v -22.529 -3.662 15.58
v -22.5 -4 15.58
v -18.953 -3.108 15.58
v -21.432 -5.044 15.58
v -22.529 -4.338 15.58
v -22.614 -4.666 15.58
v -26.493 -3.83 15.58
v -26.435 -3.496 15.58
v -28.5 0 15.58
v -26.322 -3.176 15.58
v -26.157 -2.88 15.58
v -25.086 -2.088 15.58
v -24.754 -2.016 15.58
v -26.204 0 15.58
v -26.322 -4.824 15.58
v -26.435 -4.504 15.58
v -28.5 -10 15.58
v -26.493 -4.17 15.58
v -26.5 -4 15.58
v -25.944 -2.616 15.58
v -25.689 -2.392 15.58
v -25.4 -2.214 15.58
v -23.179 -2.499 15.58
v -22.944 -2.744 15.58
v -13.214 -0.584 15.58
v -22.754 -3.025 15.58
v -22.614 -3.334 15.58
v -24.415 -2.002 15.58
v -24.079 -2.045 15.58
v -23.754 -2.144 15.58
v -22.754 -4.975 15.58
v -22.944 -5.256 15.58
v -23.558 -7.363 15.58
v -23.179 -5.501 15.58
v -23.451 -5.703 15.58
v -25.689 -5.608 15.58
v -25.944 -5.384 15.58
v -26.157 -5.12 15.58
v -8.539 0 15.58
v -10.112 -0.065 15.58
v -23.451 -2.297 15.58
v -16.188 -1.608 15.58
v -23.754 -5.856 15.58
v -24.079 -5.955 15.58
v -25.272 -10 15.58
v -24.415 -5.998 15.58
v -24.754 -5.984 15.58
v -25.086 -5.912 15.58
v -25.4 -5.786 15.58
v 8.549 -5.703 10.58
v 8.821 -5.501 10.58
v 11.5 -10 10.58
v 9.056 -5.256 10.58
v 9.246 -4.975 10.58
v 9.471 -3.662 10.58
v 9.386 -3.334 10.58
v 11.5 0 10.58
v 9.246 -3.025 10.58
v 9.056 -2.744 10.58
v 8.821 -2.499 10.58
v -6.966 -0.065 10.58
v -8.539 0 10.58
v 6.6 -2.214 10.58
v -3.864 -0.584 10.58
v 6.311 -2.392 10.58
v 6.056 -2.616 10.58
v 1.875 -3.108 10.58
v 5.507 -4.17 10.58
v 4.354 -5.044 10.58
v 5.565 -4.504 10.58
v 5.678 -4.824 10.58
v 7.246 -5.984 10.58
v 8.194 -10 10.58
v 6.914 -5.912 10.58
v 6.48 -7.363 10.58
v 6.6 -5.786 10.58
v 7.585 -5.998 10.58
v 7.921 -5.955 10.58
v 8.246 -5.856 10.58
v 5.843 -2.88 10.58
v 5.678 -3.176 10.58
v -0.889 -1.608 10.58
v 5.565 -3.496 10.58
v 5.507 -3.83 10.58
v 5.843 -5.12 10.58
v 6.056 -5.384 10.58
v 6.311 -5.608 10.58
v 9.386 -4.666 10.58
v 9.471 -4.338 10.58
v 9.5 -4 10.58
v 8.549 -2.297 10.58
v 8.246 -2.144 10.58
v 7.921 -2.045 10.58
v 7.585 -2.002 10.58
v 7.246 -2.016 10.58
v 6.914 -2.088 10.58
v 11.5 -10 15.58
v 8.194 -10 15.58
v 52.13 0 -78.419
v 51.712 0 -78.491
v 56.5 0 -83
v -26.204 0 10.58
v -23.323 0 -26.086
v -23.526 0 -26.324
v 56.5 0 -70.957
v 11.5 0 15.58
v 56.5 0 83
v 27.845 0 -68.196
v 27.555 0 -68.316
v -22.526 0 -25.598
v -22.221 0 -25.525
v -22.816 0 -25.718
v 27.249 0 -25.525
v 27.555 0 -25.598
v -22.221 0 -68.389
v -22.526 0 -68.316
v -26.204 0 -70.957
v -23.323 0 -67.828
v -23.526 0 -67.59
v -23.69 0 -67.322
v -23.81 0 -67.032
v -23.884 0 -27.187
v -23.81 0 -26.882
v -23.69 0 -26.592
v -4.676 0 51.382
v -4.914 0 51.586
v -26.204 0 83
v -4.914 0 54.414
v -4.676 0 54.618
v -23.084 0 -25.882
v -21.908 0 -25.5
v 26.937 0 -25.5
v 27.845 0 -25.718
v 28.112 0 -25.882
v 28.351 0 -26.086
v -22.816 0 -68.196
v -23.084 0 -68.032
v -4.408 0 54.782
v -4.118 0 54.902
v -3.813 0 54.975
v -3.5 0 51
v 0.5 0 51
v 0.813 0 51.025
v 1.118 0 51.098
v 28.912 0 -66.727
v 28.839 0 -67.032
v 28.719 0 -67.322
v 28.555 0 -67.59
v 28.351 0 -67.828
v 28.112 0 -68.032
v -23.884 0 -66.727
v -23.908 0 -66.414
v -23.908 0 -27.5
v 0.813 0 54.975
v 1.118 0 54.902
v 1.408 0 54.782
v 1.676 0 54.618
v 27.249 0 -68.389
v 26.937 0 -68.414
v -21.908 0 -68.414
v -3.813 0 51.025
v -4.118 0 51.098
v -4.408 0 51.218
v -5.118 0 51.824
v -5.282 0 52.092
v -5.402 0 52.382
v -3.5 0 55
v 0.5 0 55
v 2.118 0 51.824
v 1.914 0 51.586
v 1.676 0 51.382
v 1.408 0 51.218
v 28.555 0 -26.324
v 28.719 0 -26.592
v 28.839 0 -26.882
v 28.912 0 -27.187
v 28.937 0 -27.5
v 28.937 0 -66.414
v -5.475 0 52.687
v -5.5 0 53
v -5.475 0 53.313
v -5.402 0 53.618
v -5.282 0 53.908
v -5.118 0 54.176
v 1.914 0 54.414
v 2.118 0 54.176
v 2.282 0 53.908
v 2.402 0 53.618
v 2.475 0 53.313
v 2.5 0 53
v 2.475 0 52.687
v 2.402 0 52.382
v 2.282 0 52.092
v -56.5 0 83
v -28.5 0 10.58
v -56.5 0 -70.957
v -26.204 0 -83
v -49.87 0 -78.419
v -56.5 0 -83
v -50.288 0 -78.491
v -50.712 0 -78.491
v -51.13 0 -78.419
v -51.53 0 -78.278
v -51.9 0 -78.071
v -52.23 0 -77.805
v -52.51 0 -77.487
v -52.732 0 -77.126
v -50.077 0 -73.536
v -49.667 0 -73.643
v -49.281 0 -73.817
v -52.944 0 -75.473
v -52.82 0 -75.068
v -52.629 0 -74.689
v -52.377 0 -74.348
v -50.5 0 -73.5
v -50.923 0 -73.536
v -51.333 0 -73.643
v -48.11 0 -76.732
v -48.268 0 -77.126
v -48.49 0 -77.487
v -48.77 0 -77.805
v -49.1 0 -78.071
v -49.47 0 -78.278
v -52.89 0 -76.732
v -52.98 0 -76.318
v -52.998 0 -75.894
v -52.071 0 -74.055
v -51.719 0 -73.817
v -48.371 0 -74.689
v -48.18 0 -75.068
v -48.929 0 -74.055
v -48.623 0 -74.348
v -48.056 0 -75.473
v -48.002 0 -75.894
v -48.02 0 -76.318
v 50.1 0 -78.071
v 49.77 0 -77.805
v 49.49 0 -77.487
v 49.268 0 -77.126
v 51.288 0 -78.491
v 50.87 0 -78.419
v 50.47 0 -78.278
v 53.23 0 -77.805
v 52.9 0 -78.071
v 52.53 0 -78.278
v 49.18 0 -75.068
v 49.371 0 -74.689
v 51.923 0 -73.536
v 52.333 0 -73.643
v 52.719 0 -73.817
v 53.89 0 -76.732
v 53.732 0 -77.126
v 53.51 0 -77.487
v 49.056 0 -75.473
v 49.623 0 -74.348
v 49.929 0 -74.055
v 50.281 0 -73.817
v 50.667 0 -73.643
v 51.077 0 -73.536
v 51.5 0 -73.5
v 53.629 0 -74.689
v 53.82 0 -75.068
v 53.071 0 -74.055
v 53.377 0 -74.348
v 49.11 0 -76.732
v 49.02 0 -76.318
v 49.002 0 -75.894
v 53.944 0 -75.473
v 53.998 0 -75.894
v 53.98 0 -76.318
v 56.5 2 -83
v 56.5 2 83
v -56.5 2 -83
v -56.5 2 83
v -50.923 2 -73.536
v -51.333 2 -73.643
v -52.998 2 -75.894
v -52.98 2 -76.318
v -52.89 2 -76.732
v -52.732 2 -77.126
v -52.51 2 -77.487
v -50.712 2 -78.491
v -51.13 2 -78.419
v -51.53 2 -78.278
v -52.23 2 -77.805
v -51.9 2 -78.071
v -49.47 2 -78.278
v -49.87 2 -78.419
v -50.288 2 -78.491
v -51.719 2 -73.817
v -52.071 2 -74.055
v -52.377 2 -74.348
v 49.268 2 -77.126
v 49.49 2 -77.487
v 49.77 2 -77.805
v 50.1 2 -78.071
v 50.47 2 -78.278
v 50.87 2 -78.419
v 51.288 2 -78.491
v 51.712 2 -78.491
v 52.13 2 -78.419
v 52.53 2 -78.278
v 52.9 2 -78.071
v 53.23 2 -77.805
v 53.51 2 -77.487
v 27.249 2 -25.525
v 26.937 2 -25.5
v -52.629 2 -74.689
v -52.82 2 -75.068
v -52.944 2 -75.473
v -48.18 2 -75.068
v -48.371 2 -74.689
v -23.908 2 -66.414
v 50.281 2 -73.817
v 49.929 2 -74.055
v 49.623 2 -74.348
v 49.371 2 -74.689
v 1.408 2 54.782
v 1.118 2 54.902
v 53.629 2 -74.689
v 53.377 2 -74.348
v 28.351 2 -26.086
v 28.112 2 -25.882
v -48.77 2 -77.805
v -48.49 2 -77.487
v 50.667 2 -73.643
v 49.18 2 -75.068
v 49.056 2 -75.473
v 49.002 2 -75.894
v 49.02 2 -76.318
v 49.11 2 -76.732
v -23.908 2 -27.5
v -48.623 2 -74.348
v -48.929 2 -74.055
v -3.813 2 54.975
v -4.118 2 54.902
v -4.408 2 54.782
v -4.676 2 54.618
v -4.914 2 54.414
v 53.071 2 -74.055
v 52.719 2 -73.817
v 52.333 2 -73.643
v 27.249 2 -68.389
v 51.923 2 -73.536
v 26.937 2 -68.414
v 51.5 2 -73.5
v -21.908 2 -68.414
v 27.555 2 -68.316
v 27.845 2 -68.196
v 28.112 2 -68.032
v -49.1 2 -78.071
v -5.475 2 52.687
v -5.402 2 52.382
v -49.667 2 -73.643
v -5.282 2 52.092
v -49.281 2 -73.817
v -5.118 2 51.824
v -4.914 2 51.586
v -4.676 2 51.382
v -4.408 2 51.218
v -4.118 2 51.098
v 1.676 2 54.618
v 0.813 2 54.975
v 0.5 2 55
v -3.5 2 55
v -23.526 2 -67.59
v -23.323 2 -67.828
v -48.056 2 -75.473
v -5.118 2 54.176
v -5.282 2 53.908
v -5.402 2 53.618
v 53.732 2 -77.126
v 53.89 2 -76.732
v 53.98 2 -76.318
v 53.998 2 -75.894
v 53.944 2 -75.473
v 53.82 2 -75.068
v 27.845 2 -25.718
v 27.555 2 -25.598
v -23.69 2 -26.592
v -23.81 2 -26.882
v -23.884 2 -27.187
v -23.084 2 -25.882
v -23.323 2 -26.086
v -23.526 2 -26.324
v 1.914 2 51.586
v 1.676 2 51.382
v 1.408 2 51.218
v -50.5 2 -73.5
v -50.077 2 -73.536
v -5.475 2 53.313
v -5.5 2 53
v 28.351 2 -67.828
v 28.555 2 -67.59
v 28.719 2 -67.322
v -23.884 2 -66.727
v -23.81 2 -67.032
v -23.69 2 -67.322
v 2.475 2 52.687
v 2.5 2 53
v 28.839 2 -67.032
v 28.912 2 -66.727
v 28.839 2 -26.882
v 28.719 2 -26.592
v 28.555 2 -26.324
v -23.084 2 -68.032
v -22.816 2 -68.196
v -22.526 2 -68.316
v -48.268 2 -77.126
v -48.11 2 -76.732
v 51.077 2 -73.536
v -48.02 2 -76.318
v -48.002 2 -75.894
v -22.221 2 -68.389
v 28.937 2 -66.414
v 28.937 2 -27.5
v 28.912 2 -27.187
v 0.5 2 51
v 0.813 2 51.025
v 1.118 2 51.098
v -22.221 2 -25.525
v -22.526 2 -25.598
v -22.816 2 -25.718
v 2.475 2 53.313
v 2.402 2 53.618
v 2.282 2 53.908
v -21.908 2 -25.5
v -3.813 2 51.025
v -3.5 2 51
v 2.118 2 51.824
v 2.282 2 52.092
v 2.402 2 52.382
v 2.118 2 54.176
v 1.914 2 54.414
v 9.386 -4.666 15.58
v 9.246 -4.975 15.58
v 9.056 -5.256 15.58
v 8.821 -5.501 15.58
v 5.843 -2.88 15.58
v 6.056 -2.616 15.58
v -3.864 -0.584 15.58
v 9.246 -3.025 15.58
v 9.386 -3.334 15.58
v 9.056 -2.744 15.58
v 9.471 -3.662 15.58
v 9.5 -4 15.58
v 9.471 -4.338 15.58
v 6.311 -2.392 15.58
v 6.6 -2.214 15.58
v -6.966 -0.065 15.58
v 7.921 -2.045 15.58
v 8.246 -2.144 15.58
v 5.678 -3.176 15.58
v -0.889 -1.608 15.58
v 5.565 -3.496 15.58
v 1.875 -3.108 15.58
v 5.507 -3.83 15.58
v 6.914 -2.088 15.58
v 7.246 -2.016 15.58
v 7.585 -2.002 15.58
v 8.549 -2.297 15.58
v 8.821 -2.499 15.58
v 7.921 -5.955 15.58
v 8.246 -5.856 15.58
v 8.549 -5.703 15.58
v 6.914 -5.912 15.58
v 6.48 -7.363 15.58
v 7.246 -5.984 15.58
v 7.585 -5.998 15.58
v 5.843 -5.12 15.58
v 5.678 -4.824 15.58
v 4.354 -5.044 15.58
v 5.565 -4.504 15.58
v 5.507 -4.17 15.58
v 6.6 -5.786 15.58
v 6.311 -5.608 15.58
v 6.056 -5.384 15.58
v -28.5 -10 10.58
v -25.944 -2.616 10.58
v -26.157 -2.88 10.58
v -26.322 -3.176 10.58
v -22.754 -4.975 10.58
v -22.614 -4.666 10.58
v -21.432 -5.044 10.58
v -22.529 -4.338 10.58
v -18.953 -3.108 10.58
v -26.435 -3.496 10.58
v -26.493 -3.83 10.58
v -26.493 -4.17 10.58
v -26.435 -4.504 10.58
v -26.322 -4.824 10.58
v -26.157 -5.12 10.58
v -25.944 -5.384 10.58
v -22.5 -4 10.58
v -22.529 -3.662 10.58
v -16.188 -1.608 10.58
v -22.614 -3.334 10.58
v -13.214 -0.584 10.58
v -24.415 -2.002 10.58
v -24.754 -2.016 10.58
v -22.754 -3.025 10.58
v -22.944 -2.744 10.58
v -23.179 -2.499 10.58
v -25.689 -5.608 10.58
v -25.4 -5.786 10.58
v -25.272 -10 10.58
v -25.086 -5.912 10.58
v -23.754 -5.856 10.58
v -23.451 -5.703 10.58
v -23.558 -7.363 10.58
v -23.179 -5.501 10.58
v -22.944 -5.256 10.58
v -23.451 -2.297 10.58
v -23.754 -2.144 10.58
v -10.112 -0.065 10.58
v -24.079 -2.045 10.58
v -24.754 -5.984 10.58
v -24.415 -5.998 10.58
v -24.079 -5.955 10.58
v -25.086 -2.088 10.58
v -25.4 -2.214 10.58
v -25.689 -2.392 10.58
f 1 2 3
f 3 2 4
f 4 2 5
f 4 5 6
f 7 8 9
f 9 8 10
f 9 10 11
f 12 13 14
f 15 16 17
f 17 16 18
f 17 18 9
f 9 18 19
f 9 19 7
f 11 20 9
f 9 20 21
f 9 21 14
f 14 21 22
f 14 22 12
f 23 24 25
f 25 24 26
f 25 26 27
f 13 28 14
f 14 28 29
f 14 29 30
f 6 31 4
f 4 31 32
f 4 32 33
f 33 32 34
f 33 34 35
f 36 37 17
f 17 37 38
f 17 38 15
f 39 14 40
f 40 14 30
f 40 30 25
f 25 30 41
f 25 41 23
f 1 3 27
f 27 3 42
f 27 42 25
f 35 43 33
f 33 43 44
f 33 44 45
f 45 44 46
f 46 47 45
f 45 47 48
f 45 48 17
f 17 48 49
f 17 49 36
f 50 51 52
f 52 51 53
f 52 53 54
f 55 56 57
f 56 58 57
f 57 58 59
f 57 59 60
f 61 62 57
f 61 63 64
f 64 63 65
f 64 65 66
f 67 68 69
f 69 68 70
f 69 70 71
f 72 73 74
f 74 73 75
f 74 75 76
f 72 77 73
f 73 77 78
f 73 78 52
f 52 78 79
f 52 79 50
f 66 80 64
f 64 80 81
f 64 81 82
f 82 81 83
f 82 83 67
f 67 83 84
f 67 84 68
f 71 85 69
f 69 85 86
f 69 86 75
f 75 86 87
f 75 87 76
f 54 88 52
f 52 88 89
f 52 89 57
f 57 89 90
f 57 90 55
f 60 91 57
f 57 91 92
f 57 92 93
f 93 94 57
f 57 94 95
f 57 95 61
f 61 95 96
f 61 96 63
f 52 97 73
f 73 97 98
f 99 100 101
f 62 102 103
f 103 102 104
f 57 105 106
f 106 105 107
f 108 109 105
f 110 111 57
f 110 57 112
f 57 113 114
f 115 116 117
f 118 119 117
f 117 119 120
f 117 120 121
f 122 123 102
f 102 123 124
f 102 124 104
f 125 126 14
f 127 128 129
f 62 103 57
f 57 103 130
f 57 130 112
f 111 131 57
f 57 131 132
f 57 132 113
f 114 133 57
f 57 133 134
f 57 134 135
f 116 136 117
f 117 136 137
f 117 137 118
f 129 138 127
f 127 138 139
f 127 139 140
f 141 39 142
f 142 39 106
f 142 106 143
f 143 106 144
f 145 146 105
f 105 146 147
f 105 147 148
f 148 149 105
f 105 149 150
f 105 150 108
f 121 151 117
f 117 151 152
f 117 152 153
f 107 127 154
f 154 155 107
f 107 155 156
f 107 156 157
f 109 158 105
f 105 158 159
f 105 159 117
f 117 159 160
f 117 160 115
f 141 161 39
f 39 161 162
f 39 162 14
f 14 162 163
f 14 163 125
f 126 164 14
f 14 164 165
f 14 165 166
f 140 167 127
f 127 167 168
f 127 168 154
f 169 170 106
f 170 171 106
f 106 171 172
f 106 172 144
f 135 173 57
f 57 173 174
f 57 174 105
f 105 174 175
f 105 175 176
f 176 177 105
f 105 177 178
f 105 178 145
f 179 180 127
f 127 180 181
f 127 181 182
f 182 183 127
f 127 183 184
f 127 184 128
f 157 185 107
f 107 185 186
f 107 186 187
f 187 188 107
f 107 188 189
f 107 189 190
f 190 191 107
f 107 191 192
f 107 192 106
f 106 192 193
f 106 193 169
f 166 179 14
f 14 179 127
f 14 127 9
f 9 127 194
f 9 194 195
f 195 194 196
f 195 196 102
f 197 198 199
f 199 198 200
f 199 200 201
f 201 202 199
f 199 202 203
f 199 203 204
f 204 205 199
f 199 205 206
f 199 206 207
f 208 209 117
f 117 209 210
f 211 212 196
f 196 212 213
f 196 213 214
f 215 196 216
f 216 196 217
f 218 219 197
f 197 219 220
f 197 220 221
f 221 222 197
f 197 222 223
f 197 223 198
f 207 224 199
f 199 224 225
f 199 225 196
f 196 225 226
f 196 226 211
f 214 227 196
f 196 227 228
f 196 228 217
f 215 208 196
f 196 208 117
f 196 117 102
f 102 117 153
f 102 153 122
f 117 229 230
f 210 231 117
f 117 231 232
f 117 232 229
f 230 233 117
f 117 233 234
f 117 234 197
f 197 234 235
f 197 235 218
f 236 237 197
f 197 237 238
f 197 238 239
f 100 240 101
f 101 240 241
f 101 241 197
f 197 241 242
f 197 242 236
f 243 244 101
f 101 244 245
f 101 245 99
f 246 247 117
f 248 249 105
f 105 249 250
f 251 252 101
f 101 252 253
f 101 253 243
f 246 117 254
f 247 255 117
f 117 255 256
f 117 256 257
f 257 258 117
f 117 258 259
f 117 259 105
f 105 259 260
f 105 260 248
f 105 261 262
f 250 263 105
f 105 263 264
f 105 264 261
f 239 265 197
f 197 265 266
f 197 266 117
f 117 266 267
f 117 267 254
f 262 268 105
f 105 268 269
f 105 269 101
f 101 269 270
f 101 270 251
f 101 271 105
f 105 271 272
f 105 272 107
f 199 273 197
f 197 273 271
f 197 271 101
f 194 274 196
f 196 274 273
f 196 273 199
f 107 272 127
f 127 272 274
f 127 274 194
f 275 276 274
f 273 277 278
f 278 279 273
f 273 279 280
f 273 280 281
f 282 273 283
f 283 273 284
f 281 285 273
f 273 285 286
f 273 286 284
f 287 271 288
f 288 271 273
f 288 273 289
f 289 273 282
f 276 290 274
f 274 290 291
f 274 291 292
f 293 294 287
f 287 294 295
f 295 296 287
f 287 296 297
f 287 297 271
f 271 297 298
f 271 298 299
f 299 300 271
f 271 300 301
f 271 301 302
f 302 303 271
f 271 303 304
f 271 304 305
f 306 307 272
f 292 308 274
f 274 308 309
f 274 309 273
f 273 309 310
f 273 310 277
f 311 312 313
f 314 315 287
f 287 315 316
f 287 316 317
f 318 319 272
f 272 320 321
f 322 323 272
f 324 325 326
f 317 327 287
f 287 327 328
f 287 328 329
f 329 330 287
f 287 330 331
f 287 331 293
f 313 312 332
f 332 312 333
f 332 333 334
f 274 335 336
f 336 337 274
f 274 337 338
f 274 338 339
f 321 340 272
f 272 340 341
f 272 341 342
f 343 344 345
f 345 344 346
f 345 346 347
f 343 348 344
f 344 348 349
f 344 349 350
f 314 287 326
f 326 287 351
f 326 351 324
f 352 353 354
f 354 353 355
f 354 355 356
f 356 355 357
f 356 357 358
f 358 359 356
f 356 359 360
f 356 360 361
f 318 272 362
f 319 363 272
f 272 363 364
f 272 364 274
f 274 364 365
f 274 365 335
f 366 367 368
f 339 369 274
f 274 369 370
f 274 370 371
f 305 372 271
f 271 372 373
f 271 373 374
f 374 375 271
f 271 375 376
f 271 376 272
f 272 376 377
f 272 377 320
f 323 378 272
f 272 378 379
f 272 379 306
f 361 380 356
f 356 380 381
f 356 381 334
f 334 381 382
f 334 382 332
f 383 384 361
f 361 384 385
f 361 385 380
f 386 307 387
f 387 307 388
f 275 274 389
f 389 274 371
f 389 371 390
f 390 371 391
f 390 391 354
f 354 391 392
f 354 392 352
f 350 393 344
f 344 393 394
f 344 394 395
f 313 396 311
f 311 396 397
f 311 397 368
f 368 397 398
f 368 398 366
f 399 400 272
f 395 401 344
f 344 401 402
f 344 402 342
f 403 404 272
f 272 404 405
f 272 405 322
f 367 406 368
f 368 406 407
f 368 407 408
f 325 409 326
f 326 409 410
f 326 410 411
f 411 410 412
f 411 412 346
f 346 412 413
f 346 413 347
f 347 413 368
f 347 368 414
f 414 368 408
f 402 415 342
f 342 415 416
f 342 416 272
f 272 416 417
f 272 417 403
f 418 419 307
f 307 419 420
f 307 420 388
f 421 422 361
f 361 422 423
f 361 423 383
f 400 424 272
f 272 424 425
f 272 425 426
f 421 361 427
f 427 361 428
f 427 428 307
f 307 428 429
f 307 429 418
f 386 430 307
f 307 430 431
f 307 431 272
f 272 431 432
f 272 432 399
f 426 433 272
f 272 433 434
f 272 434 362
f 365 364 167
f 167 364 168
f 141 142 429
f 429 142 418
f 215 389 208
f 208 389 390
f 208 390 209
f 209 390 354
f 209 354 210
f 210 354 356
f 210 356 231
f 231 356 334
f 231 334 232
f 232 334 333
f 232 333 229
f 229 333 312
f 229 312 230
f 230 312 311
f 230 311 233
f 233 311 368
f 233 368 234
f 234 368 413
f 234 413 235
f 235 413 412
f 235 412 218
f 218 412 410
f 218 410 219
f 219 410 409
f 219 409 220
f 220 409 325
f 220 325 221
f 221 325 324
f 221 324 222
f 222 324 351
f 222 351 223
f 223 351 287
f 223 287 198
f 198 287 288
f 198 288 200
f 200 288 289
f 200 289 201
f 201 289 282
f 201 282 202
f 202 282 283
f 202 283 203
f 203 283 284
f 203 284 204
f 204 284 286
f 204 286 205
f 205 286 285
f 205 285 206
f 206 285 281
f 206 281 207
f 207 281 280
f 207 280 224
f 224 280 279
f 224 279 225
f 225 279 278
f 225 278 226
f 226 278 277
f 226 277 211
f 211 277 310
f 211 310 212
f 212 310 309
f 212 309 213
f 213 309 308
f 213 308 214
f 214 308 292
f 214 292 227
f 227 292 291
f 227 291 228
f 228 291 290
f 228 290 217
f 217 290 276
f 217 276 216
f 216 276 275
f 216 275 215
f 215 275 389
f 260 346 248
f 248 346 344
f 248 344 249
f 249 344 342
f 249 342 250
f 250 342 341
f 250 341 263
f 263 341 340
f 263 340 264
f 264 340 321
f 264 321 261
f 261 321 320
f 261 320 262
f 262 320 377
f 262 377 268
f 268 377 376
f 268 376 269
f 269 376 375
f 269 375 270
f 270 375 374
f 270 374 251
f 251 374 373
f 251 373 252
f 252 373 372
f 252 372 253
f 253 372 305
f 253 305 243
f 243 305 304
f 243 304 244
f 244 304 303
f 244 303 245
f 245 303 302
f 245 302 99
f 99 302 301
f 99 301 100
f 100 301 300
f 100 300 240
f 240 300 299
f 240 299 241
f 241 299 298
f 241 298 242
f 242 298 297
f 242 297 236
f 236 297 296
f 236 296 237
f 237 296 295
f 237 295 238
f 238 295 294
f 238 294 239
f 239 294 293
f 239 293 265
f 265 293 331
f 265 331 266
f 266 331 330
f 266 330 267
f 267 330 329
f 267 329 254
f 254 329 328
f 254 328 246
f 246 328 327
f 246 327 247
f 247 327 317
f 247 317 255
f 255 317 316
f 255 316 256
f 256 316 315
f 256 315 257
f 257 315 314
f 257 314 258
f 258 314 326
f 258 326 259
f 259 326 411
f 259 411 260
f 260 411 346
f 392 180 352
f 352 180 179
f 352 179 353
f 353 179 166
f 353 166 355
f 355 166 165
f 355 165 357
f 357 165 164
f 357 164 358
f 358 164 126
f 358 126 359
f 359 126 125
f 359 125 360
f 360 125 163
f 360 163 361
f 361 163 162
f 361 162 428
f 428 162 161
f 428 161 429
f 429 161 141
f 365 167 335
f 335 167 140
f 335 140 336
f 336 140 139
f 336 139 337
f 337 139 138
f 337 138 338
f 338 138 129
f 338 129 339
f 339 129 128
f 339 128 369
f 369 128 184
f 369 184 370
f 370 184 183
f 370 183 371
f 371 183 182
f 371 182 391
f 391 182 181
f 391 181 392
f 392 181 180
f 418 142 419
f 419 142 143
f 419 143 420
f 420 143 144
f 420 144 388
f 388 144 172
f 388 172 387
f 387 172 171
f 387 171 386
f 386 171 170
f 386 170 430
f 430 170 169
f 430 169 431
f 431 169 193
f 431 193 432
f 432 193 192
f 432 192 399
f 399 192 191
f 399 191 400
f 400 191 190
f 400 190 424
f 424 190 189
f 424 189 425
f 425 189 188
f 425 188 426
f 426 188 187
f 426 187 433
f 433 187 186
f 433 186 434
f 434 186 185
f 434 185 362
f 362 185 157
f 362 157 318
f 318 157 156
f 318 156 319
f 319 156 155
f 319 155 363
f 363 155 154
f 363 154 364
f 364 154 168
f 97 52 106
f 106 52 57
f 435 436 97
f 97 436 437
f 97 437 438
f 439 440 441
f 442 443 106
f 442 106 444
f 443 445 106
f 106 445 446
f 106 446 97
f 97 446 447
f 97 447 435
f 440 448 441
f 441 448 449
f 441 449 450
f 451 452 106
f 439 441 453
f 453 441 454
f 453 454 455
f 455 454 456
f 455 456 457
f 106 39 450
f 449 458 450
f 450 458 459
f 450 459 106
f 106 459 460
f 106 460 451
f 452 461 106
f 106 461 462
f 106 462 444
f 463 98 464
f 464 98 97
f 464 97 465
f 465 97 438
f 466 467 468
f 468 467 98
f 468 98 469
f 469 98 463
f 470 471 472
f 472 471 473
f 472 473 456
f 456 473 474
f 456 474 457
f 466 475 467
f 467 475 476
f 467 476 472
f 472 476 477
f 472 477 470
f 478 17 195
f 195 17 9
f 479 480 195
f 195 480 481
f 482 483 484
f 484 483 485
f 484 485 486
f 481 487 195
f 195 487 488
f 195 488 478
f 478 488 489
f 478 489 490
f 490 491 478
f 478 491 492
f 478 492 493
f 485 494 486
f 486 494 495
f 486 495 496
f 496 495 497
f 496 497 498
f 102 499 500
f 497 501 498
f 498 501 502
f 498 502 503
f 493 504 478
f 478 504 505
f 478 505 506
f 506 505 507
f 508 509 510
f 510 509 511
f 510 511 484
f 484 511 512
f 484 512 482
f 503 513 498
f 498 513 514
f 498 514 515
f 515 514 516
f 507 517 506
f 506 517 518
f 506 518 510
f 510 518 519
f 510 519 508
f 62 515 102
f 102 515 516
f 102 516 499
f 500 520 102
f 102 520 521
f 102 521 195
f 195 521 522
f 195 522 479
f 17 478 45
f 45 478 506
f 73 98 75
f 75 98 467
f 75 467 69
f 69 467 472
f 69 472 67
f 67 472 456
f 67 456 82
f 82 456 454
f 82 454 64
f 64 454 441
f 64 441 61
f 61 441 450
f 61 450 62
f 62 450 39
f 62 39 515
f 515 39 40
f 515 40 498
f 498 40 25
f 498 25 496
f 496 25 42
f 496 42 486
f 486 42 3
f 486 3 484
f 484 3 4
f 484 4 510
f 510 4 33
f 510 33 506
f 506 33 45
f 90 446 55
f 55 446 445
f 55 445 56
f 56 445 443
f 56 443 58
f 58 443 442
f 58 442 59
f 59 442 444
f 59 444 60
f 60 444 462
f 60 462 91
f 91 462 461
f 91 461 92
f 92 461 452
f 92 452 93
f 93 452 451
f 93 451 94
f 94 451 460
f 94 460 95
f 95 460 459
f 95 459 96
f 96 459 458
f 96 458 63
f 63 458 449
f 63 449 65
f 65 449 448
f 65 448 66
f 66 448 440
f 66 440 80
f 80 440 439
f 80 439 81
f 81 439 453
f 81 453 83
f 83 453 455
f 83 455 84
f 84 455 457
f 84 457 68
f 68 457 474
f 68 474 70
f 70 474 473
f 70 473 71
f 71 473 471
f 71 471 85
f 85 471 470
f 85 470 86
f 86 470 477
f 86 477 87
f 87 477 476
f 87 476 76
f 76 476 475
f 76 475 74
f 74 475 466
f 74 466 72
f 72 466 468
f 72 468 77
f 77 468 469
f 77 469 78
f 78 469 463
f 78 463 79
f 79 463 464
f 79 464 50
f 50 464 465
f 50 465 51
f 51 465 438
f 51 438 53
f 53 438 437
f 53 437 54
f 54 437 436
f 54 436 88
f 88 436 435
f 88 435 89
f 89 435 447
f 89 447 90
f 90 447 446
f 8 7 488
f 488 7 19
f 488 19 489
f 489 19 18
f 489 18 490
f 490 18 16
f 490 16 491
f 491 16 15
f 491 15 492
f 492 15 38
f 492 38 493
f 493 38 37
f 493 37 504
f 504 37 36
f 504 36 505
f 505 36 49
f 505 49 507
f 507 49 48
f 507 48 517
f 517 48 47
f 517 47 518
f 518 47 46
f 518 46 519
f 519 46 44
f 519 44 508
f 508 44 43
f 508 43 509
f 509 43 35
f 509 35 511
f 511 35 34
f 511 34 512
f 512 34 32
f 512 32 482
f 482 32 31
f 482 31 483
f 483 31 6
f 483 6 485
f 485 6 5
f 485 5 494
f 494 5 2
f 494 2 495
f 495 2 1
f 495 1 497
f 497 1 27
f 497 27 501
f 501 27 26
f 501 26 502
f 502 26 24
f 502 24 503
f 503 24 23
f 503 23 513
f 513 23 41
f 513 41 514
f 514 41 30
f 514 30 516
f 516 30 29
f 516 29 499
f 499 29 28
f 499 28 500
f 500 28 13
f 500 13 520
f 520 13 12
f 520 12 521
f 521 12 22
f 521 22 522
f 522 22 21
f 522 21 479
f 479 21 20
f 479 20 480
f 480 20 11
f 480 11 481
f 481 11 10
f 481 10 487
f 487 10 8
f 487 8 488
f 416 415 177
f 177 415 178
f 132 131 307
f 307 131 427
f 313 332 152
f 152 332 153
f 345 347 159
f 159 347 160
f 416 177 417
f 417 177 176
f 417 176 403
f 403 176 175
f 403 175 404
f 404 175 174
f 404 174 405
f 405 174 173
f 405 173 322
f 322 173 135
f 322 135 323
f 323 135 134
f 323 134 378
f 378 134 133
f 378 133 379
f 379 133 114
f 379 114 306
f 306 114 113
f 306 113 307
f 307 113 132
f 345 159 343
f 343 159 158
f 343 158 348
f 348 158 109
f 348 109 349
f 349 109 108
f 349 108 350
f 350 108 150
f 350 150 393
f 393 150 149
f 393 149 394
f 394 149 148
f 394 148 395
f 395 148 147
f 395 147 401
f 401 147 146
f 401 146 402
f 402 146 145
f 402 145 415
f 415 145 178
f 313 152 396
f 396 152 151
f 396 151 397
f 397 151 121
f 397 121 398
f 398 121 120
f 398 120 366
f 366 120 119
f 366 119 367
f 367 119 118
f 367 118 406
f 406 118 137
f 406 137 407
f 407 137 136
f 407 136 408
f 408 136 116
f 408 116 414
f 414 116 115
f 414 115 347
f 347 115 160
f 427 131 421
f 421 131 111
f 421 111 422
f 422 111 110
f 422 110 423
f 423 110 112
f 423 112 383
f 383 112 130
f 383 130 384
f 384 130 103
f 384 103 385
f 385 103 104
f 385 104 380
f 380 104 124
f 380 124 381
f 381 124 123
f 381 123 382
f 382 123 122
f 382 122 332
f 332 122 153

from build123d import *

# Parameters (mm, degrees)
SKETCH1_W           = 113
SKETCH1_H           = 166
BOSS_EXTRUDE1_DEPTH = 2
CUT_EXTRUDE1_REACH  = 102.425
SKETCH2_R           = 2.5
SKETCH2_W           = 8
SKETCH2_H           = 4
FILLET1_R           = 2
SKETCH3_W           = 40
SKETCH3_H           = 5
BOSS_EXTRUDE2_DEPTH = 10
CUT_EXTRUDE2_REACH  = 116.062
SKETCH5_R           = 19
CUT_EXTRUDE3_REACH  = 116.062
SKETCH6_R           = 2
CUT_EXTRUDE4_REACH  = 103.12
SKETCH7_W           = 52.844902502
SKETCH7_H           = 42.914109563
FILLET2_R           = 2


with BuildPart() as part:
    # Sketch1 → Boss-Extrude1 (new body)
    with BuildSketch(Plane(origin=(0, 0, 0), x_dir=(1, 0, 0), z_dir=(0, 1, 0))):
        Rectangle(SKETCH1_W, SKETCH1_H)
    extrude(amount=BOSS_EXTRUDE1_DEPTH)

    # Sketch2 → Cut-Extrude1 (cut, up to next)
    with BuildSketch(Plane(origin=(0, 2, 0), x_dir=(1, 0, 0), z_dir=(0, 1, 0)), mode=Mode.PRIVATE) as cut_extrude1_sk1:
        with Locations(Location((51.5, 76, 0), (0, 0, 270))):
            Circle(SKETCH2_R)
    cut_extrude1_tool1 = extrude(cut_extrude1_sk1.sketch, amount=-CUT_EXTRUDE1_REACH, mode=Mode.PRIVATE) & part.part
    # Sketch2 → Cut-Extrude1 (cut, up to next)
    with BuildSketch(Plane(origin=(0, 2, 0), x_dir=(1, 0, 0), z_dir=(0, 1, 0)), mode=Mode.PRIVATE) as cut_extrude1_sk2:
        with Locations(Location((-50.5, 76, 0), (0, 0, 270))):
            Circle(SKETCH2_R)
    cut_extrude1_tool2 = extrude(cut_extrude1_sk2.sketch, amount=-CUT_EXTRUDE1_REACH, mode=Mode.PRIVATE) & part.part
    # Sketch2 → Cut-Extrude1 (cut, up to next)
    with BuildSketch(Plane(origin=(0, 2, 0), x_dir=(1, 0, 0), z_dir=(0, 1, 0)), mode=Mode.PRIVATE) as cut_extrude1_sk3:
        with Locations((-1.5, -53)):
            Rectangle(SKETCH2_W, SKETCH2_H)
    cut_extrude1_tool3 = extrude(cut_extrude1_sk3.sketch, amount=-CUT_EXTRUDE1_REACH, mode=Mode.PRIVATE) & part.part
    add(cut_extrude1_tool1.solids().sort_by_distance((51.5, 2, -76))[0], mode=Mode.SUBTRACT)
    add(cut_extrude1_tool2.solids().sort_by_distance((-50.5, 2, -76))[0], mode=Mode.SUBTRACT)
    add(cut_extrude1_tool3.solids().sort_by_distance((-1.5, 2, 53))[0], mode=Mode.SUBTRACT)

    # Fillet1
    fillet1_edges = [part.edges().sort_by_distance(p)[0] for p in [
        (-5.5, 1, 55),
        (-5.5, 1, 51),
        (2.5, 1, 55),
        (2.5, 1, 51),
    ]]
    fillet(fillet1_edges, radius=FILLET1_R - 0.0001)  # a hair under: the kernel refuses the full size

    # Sketch3 → Boss-Extrude2 (add)
    with BuildSketch(Plane.XZ):
        with Locations((-8.5, 13.079652709)):
            Rectangle(SKETCH3_W, SKETCH3_H)
    extrude(amount=BOSS_EXTRUDE2_DEPTH)

    # Sketch5 → Cut-Extrude2 (cut, up to next)
    with BuildSketch(Plane.XY.offset(15.579652709), mode=Mode.PRIVATE) as cut_extrude2_sk1:
        with Locations((-8.538915201, -19)):
            Circle(SKETCH5_R)
    cut_extrude2_tool1 = extrude(cut_extrude2_sk1.sketch, amount=-CUT_EXTRUDE2_REACH, mode=Mode.PRIVATE) & part.part
    add(cut_extrude2_tool1.solids().sort_by_distance((-8.538915, -19, 15.579653))[0], mode=Mode.SUBTRACT)

    # Sketch6 → Cut-Extrude3 (cut, up to next)
    with BuildSketch(Plane.XY.offset(15.579652709), mode=Mode.PRIVATE) as cut_extrude3_sk1:
        with Locations((7.5, -4)):
            Circle(SKETCH6_R)
    cut_extrude3_tool1 = extrude(cut_extrude3_sk1.sketch, amount=-CUT_EXTRUDE3_REACH, mode=Mode.PRIVATE) & part.part
    cut_extrude3 = cut_extrude3_tool1.solids().sort_by_distance((7.5, -4, 15.579653))[0]
    add(cut_extrude3, mode=Mode.SUBTRACT)

    # Mirror1: Cut-Extrude3 across plane
    add(cut_extrude3.mirror(Plane(origin=(-8.5, 0, 0), x_dir=(0, 0, 1), z_dir=(1, 0, 0))), mode=Mode.SUBTRACT)

    # Sketch7 → Cut-Extrude4 (cut, up to next)
    with BuildSketch(Plane(origin=(0, 2, 0), x_dir=(1, 0, 0), z_dir=(0, 1, 0)), mode=Mode.PRIVATE) as cut_extrude4_sk1:
        with Locations((2.514142356, 46.957054782)):
            Rectangle(SKETCH7_W, SKETCH7_H)
    cut_extrude4_tool1 = extrude(cut_extrude4_sk1.sketch, amount=-CUT_EXTRUDE4_REACH, mode=Mode.PRIVATE) & part.part
    add(cut_extrude4_tool1.solids().sort_by_distance((2.514142, 2, -46.957055))[0], mode=Mode.SUBTRACT)

    # Fillet2
    fillet2_edges = [part.edges().sort_by_distance(p)[0] for p in [
        (28.936593607, 1, -68.414109563),
        (28.936593607, 1, -25.5),
        (-23.908308895, 1, -25.5),
        (-23.908308895, 1, -68.414109563),
    ]]
    fillet(fillet2_edges, radius=FILLET2_R)


solid = part.part
